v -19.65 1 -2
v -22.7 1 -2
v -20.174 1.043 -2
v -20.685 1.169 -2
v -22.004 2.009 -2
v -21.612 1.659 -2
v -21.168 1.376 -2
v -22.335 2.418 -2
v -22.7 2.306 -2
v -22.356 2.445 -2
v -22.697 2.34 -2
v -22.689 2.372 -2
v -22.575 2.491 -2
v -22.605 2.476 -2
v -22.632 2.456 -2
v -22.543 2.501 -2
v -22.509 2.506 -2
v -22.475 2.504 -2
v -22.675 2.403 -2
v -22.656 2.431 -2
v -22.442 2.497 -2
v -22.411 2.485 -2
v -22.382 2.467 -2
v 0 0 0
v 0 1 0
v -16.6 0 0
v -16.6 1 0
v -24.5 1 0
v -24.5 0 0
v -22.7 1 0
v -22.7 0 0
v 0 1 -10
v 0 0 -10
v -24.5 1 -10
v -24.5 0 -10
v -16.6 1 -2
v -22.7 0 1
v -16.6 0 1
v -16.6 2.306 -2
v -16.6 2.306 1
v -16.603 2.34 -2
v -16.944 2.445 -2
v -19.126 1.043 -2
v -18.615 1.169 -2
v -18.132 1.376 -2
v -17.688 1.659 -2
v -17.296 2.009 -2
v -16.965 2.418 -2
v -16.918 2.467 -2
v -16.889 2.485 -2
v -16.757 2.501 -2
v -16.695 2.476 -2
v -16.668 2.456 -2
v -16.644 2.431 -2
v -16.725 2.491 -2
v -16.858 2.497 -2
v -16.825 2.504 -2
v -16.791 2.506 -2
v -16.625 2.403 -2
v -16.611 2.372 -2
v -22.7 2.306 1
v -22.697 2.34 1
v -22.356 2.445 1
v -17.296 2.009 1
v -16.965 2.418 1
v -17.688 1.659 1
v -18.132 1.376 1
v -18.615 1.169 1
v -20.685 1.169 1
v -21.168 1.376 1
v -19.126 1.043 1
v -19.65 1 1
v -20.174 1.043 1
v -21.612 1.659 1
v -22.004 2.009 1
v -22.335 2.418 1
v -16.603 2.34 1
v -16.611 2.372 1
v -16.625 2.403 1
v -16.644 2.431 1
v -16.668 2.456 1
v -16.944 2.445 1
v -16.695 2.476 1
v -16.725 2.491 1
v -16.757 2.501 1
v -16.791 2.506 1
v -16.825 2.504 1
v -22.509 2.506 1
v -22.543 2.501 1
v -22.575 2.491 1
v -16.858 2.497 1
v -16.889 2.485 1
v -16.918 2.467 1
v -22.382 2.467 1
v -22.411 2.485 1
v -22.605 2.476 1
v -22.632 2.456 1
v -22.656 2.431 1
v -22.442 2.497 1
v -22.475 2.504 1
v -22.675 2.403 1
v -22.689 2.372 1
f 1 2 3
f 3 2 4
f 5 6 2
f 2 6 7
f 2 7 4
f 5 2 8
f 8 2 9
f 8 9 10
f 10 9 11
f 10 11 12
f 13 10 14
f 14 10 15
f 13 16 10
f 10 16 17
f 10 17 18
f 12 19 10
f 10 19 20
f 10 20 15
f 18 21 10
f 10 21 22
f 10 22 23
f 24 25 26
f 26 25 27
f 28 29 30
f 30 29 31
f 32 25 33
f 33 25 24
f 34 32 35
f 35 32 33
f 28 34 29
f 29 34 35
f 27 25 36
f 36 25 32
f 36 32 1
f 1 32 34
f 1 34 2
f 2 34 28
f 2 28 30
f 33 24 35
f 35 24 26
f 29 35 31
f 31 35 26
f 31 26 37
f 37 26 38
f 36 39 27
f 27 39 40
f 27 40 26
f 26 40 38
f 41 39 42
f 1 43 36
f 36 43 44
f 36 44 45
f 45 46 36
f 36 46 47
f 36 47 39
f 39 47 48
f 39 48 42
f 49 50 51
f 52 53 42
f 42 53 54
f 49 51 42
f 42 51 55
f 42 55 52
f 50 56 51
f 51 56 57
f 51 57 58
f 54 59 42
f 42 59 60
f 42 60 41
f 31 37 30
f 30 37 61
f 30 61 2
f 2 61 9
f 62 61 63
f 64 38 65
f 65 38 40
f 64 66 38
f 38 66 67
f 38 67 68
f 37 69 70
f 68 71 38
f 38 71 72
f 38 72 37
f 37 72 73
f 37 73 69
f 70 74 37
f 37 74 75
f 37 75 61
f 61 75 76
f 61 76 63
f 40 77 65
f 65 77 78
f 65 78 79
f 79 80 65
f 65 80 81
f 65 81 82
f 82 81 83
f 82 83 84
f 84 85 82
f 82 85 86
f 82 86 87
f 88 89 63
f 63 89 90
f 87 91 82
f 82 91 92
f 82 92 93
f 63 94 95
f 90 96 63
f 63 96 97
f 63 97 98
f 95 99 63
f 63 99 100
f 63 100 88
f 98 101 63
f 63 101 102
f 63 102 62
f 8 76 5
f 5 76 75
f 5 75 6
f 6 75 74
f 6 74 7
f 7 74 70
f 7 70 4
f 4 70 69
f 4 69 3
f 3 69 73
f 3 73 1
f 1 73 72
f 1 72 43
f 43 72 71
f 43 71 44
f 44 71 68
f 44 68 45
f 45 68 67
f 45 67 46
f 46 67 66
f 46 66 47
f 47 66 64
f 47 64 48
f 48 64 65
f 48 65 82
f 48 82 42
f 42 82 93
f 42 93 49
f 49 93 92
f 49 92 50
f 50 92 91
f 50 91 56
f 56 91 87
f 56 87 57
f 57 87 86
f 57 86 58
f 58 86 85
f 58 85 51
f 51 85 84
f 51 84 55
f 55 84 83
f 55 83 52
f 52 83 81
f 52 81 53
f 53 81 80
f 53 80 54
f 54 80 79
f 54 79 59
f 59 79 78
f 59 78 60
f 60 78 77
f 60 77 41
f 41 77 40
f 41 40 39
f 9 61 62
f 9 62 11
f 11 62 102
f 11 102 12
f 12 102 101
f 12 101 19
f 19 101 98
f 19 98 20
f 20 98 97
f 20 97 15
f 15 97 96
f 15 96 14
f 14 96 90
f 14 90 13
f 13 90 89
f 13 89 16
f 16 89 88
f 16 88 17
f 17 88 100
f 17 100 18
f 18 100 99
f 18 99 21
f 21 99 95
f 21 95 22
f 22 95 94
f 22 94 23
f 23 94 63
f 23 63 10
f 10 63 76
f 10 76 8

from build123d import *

# Parameters (mm, degrees)
SKETCH1_W           = 24.5
SKETCH1_H           = 10
BOSS_EXTRUDE1_DEPTH = 1
SKETCH2_W           = 6.1
SKETCH2_H           = 3
BOSS_EXTRUDE2_DEPTH = 3.25
SKETCH4_W           = 6.1
SKETCH4_H           = 1
BOSS_EXTRUDE3_DEPTH = 1
SKETCH3_R           = 3.25
CUT_EXTRUDE1_DEPTH  = 3
FILLET1_R           = 0.2


with BuildPart() as part:
    # Sketch1 → Boss-Extrude1 (new body)
    with BuildSketch(Plane(origin=(0, 0, 0), x_dir=(1, 0, 0), z_dir=(0, 1, 0))):
        with Locations((-12.25, 5)):
            Rectangle(SKETCH1_W, SKETCH1_H)
    extrude(amount=BOSS_EXTRUDE1_DEPTH)

    # Sketch2 → Boss-Extrude2 (add)
    with BuildSketch(Plane(origin=(0, 1, 0), x_dir=(1, 0, 0), z_dir=(0, 1, 0))):
        with Locations((-19.65, 0.5)):
            Rectangle(SKETCH2_W, SKETCH2_H)
    extrude(amount=BOSS_EXTRUDE2_DEPTH)

    # Sketch4 → Boss-Extrude3 (add)
    with BuildSketch(Plane(origin=(0, 1, 0), x_dir=(-1, 0, 0), z_dir=(0, -1, 0))):
        with Locations((19.65, -0.5)):
            Rectangle(SKETCH4_W, SKETCH4_H)
    extrude(amount=BOSS_EXTRUDE3_DEPTH)

    # Sketch3 → Cut-Extrude1 (cut)
    with BuildSketch(Plane.XY.offset(1)):
        with Locations((-19.65, 4.25)):
            Circle(SKETCH3_R)
    extrude(amount=-CUT_EXTRUDE1_DEPTH, mode=Mode.SUBTRACT)

    # Fillet1
    fillet1_edges = [part.edges().sort_by_distance(p)[0] for p in [
        (-16.6, 3.127502784, -0.5),
        (-22.7, 3.127502784, -0.5),
    ]]
    fillet(fillet1_edges, radius=FILLET1_R)


solid = part.part
